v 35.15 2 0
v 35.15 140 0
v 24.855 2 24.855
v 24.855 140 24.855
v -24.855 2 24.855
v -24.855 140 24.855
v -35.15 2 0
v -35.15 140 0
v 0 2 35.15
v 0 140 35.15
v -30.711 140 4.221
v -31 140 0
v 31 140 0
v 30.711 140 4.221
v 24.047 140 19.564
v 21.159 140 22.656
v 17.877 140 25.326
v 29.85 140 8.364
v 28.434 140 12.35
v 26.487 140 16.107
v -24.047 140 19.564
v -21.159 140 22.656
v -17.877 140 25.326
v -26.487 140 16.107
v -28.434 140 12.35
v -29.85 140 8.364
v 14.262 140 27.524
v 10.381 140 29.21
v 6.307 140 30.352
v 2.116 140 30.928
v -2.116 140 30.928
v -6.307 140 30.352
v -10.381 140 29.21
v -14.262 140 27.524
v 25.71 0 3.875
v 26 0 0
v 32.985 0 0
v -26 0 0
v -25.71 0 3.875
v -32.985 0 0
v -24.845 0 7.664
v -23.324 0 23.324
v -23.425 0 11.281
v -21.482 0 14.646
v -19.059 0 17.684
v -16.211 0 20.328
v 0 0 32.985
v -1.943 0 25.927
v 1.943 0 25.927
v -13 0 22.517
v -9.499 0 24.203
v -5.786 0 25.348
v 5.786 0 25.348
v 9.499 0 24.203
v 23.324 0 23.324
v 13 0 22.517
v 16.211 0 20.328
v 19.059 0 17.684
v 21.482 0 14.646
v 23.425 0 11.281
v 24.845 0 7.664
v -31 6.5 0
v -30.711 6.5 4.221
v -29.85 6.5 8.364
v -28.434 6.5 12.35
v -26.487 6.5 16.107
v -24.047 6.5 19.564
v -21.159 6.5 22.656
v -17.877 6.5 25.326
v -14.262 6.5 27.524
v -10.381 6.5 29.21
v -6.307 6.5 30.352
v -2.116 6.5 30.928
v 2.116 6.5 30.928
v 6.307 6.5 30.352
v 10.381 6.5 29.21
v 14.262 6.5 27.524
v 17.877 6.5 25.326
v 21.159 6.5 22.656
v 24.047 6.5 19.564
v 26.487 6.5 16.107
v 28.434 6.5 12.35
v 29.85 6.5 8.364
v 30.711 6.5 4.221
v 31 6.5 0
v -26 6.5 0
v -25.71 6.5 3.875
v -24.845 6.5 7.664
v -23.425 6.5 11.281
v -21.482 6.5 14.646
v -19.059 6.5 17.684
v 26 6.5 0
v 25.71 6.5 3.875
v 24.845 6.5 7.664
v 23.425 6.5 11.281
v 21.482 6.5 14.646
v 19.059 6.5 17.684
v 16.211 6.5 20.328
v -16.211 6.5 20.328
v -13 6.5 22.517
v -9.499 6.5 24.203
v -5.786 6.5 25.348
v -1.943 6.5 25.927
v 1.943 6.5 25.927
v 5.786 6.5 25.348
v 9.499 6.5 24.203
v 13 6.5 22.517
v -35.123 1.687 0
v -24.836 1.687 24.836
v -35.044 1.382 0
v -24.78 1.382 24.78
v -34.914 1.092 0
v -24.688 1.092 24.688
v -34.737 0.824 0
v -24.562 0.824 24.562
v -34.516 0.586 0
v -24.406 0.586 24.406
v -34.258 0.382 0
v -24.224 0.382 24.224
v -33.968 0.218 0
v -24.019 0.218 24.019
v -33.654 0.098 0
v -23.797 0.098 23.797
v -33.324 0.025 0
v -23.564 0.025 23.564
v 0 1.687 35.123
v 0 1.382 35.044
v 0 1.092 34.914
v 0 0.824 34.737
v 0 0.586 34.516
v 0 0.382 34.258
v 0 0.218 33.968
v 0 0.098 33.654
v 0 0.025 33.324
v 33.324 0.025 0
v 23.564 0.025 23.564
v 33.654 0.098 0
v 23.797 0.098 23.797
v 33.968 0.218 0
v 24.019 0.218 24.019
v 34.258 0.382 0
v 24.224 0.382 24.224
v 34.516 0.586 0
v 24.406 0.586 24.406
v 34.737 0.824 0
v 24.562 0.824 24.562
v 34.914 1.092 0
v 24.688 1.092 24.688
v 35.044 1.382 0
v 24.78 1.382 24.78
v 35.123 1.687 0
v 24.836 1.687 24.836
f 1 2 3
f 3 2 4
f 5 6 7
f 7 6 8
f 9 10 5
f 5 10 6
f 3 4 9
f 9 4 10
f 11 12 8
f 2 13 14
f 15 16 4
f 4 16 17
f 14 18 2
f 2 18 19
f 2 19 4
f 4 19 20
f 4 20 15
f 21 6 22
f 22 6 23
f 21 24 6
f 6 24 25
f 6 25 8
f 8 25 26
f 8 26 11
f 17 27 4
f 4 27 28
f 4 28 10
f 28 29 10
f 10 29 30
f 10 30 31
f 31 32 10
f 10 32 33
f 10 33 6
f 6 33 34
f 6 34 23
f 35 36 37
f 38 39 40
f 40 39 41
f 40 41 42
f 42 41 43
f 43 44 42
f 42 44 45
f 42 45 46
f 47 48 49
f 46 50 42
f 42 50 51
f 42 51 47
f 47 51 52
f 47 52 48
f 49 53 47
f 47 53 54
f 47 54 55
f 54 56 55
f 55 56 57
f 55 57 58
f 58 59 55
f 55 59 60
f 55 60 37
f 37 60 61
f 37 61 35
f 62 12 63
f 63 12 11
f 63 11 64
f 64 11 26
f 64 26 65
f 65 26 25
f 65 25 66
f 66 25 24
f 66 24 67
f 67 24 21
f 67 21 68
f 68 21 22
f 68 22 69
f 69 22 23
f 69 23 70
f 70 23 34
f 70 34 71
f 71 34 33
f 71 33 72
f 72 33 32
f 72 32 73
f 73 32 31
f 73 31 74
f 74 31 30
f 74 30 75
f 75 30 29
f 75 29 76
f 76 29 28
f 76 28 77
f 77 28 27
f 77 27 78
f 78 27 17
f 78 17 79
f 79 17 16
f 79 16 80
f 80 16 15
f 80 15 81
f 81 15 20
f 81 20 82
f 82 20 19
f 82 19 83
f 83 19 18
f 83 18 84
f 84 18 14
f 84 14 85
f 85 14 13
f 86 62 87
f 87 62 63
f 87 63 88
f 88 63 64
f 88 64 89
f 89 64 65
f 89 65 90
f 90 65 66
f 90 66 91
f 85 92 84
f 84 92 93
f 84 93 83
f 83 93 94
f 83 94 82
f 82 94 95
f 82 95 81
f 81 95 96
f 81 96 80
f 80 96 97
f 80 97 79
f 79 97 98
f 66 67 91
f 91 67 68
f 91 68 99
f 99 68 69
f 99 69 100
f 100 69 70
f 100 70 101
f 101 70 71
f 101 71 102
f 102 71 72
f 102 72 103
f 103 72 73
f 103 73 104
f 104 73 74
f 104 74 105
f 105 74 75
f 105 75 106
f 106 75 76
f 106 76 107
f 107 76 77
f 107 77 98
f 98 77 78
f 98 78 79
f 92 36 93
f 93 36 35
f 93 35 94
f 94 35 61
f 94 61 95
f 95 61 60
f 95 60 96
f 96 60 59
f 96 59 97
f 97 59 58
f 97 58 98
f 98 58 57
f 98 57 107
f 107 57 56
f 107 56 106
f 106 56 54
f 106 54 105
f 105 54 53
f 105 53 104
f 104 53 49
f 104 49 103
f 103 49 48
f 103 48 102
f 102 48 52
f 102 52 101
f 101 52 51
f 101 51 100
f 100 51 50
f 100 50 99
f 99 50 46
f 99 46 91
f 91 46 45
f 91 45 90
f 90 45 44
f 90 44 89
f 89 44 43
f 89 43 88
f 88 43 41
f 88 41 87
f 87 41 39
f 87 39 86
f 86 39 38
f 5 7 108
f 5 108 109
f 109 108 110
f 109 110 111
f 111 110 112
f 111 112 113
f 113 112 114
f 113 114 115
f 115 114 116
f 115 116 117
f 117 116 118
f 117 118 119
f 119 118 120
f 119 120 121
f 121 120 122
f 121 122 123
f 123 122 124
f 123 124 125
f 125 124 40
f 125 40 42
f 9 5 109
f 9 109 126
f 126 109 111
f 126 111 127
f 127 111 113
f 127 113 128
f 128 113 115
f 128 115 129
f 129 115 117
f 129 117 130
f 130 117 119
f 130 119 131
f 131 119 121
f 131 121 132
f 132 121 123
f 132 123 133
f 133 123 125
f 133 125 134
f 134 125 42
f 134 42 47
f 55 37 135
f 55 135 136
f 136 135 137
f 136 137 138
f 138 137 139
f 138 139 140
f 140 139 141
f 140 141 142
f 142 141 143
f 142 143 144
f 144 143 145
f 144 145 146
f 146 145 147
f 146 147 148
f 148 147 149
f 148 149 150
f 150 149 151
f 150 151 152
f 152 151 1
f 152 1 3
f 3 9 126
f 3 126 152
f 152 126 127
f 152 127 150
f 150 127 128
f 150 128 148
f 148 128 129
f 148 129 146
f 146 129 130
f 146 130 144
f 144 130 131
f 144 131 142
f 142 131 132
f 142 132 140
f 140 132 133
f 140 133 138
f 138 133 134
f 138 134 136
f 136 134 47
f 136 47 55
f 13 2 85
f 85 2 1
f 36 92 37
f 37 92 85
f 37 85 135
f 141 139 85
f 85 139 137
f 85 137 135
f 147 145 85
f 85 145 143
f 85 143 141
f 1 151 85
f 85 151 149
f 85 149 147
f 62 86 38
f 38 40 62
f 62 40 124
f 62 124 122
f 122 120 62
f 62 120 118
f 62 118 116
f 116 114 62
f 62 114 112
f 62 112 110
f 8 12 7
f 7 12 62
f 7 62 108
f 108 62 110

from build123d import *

# Parameters (mm, degrees)
BOSS_EXTRUDE1_DEPTH = 140
SKETCH2_R           = 31
CUT_EXTRUDE1_DEPTH  = 133.5
SKETCH3_R           = 26
CUT_EXTRUDE2_DEPTH  = 133.5
FILLET1_R           = 2
CUT_EXTRUDE3_DEPTH  = 173.5


with BuildPart() as part:
    # Sketch1 → Boss-Extrude1 (new body)
    with BuildSketch(Plane(origin=(0, 0, 0), x_dir=(1, 0, 0), z_dir=(0, 1, 0))):
        Polygon((35.15, 0), (24.854803359, 24.854803359), (0, 35.15), (-24.854803359, 24.854803359), (-35.15, 0), (-24.854803359, -24.854803359), (0, -35.15), (24.854803359, -24.854803359), align=None)
    extrude(amount=BOSS_EXTRUDE1_DEPTH)

    # Sketch2 → Cut-Extrude1 (cut)
    with BuildSketch(Plane(origin=(0, 140, 0), x_dir=(1, 0, 0), z_dir=(0, 1, 0))):
        with Locations(Location((0, 0, 0), (0, 0, 270))):
            Circle(SKETCH2_R)
    extrude(amount=-CUT_EXTRUDE1_DEPTH, mode=Mode.SUBTRACT)

    # Sketch3 → Cut-Extrude2 (cut)
    with BuildSketch(Plane(origin=(0, 0, 0), x_dir=(-1, 0, 0), z_dir=(0, -1, 0))):
        with Locations(Location((0, 0, 0), (0, 0, 90))):
            Circle(SKETCH3_R)
    extrude(amount=-CUT_EXTRUDE2_DEPTH, mode=Mode.SUBTRACT)

    # Fillet1
    fillet1_edges = [part.edges().sort_by_distance(p)[0] for p in [
        (30.002401679, 0, -12.427401679),
        (30.002401679, 0, 12.427401679),
        (12.427401679, 0, 30.002401679),
        (-12.427401679, 0, 30.002401679),
        (-30.002401679, 0, 12.427401679),
        (-30.002401679, 0, -12.427401679),
        (-12.427401679, 0, -30.002401679),
        (12.427401679, 0, -30.002401679),
    ]]
    fillet(fillet1_edges, radius=FILLET1_R)

    # Sketch4 → Cut-Extrude3 (cut)
    with BuildSketch(Plane(origin=(0, 140, 0), x_dir=(1, 0, 0), z_dir=(0, 1, 0))):
        Polygon((-35.15, 0), (35.15, 0), (24.854803359, 24.854803359), (0, 35.15), (-24.854803359, 24.854803359), align=None)
    extrude(amount=-CUT_EXTRUDE3_DEPTH, mode=Mode.SUBTRACT)


solid = part.part
